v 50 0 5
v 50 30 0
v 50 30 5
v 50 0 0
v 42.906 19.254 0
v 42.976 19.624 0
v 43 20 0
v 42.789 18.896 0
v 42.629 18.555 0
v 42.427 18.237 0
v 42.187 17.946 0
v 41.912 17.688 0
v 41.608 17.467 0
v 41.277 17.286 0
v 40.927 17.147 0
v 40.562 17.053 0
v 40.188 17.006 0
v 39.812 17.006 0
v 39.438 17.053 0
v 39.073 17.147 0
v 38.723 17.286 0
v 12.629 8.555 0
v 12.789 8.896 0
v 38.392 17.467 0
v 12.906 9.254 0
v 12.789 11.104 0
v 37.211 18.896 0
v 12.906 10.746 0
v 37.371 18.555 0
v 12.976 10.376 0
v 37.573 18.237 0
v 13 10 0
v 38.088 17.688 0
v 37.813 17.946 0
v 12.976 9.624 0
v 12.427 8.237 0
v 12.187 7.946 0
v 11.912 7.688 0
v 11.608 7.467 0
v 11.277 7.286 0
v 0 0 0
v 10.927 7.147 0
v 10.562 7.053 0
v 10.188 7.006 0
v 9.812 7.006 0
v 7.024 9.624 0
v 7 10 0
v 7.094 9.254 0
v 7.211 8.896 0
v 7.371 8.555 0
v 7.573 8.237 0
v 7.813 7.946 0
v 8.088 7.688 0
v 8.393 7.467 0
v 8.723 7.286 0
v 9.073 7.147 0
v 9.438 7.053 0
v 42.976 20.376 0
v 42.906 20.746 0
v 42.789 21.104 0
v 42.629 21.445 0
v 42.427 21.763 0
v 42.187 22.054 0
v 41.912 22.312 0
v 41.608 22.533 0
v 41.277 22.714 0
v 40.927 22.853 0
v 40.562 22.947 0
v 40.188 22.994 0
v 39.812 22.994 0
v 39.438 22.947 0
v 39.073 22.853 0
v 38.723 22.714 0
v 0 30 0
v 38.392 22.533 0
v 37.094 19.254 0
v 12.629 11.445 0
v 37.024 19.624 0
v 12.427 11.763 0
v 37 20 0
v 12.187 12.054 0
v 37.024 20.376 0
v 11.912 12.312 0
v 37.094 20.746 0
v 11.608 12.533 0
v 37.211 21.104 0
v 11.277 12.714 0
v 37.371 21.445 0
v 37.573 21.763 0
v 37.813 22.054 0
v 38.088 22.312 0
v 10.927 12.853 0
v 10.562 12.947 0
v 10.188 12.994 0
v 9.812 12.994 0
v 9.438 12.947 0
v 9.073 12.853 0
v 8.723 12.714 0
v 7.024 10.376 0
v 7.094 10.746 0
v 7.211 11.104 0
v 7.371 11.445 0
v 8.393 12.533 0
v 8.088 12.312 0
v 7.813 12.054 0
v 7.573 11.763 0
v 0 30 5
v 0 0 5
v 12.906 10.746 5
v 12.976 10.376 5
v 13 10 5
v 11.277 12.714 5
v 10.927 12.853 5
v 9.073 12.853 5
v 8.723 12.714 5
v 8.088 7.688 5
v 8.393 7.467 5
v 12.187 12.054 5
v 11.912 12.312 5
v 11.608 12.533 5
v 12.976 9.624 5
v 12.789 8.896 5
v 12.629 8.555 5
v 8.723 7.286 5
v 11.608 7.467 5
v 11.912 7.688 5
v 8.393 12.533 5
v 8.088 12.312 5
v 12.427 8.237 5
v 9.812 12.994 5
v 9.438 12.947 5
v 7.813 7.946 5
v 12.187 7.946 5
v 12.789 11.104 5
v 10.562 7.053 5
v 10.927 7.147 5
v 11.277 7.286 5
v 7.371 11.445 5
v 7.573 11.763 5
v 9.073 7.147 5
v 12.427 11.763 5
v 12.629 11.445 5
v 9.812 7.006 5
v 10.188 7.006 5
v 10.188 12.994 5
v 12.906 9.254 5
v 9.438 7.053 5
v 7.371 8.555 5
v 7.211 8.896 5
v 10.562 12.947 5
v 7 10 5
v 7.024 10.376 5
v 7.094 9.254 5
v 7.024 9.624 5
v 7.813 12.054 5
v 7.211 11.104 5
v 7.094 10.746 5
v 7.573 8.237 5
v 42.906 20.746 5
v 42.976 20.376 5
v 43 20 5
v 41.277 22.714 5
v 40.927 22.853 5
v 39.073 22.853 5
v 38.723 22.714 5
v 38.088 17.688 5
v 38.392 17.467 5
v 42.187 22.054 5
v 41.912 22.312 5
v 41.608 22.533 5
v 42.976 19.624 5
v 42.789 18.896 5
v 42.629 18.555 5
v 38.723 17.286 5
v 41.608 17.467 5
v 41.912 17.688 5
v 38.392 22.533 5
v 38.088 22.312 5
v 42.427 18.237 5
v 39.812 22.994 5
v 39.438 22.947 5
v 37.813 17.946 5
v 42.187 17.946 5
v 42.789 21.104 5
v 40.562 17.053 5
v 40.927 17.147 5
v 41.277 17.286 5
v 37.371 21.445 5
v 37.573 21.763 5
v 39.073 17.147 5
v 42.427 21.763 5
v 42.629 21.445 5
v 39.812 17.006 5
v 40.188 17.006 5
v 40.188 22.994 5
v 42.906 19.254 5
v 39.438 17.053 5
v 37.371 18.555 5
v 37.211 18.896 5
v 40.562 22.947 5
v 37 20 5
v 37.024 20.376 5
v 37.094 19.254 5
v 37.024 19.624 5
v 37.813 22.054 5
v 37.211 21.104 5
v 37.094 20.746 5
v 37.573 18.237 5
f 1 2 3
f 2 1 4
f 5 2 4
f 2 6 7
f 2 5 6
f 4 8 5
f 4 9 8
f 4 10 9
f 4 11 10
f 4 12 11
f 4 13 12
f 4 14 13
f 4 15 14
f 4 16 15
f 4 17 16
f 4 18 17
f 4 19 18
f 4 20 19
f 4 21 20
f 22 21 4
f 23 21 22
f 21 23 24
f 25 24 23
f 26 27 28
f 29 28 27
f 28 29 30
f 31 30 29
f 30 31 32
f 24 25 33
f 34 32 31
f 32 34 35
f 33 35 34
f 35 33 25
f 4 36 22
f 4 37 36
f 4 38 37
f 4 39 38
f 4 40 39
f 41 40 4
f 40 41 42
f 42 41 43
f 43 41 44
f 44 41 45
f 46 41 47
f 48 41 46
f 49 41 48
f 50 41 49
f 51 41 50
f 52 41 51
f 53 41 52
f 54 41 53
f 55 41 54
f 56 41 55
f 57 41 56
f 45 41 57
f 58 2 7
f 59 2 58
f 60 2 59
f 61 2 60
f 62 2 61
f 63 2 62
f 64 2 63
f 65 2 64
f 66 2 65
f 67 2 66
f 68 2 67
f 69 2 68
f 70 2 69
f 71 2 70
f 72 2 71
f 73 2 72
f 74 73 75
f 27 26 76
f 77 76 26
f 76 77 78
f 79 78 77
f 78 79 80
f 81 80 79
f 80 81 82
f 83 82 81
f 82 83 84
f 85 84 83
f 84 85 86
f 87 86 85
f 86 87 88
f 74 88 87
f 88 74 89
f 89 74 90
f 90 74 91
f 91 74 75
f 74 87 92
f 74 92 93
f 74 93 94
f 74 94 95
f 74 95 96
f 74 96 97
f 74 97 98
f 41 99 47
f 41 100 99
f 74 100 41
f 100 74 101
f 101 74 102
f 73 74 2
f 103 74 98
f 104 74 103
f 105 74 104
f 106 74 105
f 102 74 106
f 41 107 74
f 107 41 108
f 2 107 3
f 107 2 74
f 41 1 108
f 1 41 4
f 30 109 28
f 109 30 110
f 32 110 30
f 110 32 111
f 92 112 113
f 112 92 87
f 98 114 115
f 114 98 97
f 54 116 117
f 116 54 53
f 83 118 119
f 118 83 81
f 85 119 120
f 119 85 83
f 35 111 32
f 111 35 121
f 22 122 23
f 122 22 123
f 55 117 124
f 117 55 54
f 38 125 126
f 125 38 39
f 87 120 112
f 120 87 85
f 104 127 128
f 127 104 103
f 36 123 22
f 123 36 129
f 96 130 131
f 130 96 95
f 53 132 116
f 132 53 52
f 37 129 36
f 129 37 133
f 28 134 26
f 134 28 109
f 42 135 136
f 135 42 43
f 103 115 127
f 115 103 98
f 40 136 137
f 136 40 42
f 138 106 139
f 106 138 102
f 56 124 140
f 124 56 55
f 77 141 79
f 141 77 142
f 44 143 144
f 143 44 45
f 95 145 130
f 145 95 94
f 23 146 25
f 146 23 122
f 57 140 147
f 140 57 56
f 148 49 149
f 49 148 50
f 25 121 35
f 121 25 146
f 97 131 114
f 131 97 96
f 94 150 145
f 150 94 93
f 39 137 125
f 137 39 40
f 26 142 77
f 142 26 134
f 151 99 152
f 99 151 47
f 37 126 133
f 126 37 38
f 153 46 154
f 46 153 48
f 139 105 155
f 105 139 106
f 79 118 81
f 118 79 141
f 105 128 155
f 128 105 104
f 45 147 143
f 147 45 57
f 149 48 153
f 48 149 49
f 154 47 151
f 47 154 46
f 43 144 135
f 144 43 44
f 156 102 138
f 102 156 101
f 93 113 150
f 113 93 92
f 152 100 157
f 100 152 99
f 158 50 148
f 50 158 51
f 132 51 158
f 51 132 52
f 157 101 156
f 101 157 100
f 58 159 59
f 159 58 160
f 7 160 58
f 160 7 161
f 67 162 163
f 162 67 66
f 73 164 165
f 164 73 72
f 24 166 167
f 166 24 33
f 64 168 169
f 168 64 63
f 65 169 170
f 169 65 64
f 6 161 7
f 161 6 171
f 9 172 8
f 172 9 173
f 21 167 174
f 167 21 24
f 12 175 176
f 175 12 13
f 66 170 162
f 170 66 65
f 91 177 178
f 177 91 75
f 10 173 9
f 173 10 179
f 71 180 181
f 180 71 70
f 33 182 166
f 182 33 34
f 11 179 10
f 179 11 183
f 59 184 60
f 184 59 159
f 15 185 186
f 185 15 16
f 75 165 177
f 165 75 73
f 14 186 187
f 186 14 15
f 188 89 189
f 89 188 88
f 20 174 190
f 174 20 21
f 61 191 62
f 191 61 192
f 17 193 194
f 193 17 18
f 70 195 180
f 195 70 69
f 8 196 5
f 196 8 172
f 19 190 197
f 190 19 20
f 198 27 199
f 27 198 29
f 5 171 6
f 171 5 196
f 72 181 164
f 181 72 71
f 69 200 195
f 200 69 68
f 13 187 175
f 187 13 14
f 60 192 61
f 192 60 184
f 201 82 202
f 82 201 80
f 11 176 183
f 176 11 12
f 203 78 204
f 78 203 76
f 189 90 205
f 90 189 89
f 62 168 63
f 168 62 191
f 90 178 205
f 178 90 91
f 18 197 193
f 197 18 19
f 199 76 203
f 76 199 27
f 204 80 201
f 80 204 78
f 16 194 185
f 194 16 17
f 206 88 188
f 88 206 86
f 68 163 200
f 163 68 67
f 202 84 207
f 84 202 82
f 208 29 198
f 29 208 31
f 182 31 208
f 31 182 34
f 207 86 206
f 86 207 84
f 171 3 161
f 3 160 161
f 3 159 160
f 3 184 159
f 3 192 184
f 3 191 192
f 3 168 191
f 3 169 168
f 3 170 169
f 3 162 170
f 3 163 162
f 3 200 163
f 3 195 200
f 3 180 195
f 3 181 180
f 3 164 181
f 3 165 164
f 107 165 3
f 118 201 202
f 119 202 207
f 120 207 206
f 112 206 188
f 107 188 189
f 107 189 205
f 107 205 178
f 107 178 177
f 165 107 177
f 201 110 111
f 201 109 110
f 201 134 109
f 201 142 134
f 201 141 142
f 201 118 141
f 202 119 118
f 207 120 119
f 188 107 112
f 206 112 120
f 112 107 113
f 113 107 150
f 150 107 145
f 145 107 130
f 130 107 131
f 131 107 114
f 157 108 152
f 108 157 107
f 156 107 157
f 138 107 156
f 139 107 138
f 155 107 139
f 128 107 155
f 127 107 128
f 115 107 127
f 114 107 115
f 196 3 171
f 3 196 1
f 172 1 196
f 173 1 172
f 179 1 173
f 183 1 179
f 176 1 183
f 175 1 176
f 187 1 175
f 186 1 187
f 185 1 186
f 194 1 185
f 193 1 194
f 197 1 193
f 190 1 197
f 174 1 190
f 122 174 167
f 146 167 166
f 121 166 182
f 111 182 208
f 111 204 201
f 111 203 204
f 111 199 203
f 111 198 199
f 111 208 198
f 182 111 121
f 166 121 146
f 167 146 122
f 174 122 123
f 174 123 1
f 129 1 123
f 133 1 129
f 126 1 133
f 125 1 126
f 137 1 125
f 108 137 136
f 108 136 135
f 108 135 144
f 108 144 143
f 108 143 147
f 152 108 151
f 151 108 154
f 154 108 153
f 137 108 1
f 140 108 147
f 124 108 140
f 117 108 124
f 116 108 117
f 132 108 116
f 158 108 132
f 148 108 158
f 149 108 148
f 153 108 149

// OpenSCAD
// Mounting Base in OpenSCAD
// Parameters:
//   width: Width of the base
//   depth: Depth of the base
//   height: Height of the base
//   hole_diameter: Diameter of the mounting hole
//   hole_offset_x: Distance from edge to hole on x-axis
//   hole_offset_y: Distance from edge to hole on y-axis

module mounting_base(width, depth, height, hole_diameter, hole_offset_x, hole_offset_y) {
  difference() {
    cube([width, depth, height]);

    translate([hole_offset_x, hole_offset_y, 0])
    cylinder(h = height, r = hole_diameter / 2, $fn = 50);
    translate([width - hole_offset_x, depth - hole_offset_y, 0])
    cylinder(h = height, r = hole_diameter / 2, $fn = 50);

    translate([0,0,height/2])
    cube([width, depth, height]);

  }
}

mounting_base(width = 50, depth = 30, height = 10, hole_diameter = 6, hole_offset_x = 10, hole_offset_y = 10);
